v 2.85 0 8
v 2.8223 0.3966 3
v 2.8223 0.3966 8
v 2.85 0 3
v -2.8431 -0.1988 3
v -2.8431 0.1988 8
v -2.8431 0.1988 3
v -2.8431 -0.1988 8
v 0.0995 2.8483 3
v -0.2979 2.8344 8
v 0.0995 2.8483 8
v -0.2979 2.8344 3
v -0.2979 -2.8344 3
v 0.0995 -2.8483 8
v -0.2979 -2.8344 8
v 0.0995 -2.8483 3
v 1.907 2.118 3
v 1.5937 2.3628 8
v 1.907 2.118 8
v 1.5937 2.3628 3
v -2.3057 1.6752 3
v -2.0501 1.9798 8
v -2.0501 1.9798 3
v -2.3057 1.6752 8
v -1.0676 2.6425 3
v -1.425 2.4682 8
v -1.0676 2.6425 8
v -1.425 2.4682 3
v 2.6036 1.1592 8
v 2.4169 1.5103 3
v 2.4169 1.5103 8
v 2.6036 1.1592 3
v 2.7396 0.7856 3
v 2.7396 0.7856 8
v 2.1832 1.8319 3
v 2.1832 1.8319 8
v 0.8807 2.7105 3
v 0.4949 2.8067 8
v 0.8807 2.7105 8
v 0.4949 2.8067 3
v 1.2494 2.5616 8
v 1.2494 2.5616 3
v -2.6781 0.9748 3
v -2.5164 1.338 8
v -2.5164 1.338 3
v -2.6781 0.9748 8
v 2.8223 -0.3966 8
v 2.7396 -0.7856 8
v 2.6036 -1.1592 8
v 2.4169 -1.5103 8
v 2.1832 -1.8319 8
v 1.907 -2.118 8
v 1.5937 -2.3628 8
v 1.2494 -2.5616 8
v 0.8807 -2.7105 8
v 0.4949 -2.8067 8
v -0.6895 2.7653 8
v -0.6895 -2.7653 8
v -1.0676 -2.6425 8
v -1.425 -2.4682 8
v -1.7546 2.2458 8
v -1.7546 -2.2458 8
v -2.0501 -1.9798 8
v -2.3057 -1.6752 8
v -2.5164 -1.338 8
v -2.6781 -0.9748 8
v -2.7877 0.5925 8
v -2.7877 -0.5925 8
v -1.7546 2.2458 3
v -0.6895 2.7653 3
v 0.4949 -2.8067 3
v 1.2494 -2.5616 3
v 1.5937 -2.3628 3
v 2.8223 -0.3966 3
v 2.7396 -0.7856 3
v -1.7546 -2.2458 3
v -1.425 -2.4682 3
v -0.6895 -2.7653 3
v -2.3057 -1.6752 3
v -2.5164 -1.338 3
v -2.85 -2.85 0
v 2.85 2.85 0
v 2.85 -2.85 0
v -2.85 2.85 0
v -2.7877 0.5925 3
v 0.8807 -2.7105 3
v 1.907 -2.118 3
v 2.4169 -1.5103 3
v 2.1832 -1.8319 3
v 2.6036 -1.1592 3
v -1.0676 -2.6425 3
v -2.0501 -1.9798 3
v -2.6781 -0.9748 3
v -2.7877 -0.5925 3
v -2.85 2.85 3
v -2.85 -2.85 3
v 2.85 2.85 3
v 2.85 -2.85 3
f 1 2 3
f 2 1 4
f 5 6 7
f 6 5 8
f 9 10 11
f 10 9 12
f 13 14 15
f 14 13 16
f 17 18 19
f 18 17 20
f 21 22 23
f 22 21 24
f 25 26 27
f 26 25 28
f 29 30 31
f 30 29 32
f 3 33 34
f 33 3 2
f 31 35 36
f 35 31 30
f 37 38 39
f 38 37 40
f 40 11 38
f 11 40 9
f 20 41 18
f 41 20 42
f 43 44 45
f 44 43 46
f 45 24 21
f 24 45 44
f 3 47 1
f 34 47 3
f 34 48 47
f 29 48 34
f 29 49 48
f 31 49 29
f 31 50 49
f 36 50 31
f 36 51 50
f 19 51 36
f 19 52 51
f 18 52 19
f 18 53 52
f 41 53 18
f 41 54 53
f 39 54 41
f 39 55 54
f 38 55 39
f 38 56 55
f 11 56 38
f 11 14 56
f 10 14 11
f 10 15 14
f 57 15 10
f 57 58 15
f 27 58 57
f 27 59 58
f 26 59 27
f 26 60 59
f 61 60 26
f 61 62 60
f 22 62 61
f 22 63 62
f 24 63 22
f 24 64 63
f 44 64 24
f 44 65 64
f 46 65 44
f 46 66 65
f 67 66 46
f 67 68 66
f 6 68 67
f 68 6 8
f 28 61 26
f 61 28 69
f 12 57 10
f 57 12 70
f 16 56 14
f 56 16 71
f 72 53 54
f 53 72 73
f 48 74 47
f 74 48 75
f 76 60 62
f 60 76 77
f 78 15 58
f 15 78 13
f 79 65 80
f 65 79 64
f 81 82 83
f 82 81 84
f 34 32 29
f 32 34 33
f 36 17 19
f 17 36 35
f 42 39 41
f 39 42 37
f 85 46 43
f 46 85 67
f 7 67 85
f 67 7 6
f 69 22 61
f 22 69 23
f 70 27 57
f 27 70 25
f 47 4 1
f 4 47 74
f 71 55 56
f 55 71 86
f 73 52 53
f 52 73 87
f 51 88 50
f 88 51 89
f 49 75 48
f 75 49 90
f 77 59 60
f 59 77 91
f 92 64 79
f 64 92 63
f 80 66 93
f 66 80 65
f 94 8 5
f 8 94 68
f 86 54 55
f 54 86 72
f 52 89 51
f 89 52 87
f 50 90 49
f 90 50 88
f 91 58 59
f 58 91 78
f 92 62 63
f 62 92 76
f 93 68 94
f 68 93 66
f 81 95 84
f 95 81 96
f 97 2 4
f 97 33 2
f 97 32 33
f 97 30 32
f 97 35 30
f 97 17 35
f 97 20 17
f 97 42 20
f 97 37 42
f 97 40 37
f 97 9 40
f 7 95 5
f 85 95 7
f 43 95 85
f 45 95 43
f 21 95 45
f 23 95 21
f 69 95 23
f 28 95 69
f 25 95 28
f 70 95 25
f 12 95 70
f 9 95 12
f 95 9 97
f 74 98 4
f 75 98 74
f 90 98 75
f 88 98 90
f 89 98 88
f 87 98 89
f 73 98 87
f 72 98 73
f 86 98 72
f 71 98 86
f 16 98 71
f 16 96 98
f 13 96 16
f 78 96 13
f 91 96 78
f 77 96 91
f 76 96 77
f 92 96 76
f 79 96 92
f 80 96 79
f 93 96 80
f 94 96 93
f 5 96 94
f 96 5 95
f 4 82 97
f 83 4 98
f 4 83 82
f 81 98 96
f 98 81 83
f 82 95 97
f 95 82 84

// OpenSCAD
$fa = 1;
$fs = 0.4;

size = 5.7;
cylinder(h = 8, d = size);
translate([-size/2, -size/2, 0]) cube([size, size, 3]);
